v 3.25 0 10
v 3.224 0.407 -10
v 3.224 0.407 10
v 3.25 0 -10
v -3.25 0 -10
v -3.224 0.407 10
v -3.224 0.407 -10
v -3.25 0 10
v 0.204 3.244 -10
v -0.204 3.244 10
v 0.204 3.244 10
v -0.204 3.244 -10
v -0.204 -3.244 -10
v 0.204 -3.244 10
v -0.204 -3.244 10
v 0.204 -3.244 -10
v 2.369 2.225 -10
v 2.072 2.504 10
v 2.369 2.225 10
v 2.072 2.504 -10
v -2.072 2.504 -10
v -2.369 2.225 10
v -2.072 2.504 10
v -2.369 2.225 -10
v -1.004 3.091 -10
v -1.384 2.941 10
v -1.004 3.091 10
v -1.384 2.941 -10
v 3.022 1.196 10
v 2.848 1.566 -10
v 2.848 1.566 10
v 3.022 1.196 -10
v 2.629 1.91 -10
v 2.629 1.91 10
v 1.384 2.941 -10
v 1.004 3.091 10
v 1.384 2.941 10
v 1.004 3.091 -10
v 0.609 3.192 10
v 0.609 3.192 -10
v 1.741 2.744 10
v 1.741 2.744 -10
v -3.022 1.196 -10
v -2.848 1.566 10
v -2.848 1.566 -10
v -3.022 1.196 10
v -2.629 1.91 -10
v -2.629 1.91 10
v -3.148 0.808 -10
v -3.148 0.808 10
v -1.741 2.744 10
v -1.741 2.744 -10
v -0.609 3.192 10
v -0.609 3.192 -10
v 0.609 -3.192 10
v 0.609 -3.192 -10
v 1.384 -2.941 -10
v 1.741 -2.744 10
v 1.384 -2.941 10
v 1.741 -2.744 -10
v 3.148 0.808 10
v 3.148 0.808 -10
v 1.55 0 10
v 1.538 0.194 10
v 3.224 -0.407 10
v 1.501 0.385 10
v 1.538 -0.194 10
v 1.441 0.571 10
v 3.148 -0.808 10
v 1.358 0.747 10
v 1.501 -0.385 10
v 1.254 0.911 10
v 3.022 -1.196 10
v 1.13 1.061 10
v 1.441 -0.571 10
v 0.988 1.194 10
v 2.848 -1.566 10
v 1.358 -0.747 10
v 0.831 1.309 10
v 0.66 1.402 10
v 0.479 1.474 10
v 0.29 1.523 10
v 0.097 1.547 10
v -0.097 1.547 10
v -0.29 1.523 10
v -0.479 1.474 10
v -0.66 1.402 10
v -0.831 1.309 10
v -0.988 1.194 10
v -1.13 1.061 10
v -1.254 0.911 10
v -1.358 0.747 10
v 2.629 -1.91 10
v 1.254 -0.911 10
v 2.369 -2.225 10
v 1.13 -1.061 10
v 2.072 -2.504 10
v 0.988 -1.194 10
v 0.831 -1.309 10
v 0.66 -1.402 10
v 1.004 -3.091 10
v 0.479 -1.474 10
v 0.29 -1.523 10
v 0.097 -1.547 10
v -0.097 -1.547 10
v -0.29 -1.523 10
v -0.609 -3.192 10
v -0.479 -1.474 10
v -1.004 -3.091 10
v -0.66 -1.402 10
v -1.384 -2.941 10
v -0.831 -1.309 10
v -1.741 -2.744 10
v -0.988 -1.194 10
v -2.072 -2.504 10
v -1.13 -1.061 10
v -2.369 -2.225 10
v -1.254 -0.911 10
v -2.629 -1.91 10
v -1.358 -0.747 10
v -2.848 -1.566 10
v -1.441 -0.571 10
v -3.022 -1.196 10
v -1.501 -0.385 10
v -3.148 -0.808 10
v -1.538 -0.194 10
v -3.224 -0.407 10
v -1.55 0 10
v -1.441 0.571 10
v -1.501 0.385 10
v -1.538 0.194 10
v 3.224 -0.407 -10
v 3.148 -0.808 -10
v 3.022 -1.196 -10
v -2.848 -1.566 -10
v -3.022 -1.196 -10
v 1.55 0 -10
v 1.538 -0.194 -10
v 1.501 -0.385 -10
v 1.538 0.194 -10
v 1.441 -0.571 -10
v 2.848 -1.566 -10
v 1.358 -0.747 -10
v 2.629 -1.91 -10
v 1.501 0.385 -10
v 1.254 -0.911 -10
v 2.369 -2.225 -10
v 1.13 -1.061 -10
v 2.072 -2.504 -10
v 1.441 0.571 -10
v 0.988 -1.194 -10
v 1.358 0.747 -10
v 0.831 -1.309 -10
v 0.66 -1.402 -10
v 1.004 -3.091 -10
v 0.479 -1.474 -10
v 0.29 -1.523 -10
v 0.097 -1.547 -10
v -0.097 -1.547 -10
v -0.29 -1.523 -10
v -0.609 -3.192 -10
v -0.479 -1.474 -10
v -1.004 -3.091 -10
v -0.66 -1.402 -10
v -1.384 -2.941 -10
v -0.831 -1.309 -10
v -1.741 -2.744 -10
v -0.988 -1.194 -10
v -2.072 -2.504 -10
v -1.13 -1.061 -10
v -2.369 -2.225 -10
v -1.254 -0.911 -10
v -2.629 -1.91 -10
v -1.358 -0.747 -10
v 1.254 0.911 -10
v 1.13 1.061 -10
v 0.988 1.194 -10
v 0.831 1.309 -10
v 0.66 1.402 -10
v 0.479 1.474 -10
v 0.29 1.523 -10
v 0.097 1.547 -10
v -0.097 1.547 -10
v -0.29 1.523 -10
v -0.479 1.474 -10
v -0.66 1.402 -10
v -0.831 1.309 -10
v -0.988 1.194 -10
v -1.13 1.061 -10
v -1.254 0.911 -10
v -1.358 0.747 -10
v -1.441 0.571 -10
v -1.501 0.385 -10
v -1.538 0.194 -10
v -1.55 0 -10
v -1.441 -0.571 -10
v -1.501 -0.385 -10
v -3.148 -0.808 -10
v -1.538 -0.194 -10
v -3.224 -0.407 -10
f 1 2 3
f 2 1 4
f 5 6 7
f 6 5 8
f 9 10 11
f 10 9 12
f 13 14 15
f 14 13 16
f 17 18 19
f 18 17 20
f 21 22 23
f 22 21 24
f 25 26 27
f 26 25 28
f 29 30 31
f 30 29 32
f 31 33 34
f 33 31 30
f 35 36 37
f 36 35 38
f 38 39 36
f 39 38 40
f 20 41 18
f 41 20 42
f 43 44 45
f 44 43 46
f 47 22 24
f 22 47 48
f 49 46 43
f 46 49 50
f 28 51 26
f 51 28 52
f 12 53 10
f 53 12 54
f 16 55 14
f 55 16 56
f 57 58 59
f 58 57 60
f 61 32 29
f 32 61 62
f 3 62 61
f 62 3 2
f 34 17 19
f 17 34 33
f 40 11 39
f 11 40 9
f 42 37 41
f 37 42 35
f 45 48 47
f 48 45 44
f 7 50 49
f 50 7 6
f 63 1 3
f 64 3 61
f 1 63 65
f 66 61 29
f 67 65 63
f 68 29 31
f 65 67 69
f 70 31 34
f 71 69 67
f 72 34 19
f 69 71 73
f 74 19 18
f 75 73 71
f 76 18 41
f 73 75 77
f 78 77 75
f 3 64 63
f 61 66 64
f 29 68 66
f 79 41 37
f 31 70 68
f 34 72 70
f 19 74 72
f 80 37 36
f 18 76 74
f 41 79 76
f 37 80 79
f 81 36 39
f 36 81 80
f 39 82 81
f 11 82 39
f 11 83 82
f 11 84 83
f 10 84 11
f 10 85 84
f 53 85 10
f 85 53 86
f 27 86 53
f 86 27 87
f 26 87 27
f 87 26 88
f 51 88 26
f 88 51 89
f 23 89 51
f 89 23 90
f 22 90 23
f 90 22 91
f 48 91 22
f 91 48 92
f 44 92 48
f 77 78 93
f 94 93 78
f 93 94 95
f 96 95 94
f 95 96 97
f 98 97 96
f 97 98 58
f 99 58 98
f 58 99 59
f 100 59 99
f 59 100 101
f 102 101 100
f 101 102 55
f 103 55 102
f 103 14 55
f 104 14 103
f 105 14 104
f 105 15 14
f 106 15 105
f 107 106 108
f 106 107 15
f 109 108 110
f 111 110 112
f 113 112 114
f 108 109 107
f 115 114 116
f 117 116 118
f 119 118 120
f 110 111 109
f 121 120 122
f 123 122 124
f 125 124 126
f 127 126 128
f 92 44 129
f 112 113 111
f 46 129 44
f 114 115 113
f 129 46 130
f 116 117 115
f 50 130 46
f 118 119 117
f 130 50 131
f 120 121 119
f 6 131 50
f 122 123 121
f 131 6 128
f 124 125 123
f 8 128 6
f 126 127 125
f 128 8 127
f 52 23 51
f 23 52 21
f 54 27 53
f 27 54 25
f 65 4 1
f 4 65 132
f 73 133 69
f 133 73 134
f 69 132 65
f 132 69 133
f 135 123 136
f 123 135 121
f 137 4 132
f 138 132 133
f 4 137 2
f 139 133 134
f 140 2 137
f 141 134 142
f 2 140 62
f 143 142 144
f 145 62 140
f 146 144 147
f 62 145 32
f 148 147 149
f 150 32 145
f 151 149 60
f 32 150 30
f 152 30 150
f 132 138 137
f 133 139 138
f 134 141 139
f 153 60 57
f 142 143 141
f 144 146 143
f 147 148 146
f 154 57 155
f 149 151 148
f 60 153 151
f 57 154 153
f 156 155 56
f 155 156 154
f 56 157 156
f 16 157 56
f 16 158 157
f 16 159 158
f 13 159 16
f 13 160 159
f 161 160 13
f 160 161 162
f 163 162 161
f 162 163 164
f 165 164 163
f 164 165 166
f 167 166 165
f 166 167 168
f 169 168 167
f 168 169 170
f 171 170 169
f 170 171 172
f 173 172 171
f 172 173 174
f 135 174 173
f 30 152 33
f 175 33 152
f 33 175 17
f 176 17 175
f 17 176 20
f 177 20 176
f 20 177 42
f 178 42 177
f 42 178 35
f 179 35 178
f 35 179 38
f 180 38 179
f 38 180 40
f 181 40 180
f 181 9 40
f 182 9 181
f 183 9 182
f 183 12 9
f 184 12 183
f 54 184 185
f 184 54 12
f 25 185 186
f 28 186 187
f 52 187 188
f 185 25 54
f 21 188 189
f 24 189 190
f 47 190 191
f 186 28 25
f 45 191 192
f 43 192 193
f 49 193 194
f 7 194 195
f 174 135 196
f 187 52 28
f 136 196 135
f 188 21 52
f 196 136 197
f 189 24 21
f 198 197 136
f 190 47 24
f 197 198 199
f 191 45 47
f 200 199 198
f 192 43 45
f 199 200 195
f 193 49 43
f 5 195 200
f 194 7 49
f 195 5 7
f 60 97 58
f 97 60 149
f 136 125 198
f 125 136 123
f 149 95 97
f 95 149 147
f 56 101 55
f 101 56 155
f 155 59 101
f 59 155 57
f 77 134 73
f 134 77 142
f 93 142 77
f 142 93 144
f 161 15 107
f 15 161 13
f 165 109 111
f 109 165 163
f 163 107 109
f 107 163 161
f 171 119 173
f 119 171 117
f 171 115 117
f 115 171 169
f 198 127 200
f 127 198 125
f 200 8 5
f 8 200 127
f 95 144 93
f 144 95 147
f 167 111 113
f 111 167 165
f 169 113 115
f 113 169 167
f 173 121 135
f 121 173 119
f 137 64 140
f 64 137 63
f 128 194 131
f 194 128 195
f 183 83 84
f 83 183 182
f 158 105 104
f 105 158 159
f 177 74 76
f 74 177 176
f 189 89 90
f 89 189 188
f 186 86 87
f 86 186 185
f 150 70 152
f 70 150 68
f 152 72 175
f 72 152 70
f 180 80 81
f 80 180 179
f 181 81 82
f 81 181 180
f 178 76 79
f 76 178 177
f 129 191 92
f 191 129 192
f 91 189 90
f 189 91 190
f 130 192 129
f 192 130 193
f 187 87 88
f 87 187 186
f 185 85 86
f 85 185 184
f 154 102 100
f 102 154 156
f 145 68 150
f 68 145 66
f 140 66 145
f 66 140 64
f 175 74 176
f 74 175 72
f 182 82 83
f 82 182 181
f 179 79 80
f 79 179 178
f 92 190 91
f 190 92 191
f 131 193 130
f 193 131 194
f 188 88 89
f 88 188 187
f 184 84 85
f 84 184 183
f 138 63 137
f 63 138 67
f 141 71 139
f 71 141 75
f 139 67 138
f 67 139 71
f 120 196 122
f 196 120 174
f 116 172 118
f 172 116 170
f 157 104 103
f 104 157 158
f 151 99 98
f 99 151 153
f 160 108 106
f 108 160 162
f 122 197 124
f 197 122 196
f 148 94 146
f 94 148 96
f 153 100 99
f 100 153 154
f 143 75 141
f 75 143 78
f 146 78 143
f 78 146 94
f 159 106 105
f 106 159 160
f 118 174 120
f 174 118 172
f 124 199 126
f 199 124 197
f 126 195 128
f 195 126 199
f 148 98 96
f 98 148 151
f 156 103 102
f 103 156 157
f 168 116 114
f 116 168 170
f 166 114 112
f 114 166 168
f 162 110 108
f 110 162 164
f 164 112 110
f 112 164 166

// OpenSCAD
$fn = 50;


difference() {
	union() {
		translate(v = [0, 0, -10.0000000000]) {
			cylinder(h = 20, r = 3.2500000000);
		}
	}
	union() {
		translate(v = [0, 0, -100.0000000000]) {
			cylinder(h = 200, r = 1.5500000000);
		}
	}
}
